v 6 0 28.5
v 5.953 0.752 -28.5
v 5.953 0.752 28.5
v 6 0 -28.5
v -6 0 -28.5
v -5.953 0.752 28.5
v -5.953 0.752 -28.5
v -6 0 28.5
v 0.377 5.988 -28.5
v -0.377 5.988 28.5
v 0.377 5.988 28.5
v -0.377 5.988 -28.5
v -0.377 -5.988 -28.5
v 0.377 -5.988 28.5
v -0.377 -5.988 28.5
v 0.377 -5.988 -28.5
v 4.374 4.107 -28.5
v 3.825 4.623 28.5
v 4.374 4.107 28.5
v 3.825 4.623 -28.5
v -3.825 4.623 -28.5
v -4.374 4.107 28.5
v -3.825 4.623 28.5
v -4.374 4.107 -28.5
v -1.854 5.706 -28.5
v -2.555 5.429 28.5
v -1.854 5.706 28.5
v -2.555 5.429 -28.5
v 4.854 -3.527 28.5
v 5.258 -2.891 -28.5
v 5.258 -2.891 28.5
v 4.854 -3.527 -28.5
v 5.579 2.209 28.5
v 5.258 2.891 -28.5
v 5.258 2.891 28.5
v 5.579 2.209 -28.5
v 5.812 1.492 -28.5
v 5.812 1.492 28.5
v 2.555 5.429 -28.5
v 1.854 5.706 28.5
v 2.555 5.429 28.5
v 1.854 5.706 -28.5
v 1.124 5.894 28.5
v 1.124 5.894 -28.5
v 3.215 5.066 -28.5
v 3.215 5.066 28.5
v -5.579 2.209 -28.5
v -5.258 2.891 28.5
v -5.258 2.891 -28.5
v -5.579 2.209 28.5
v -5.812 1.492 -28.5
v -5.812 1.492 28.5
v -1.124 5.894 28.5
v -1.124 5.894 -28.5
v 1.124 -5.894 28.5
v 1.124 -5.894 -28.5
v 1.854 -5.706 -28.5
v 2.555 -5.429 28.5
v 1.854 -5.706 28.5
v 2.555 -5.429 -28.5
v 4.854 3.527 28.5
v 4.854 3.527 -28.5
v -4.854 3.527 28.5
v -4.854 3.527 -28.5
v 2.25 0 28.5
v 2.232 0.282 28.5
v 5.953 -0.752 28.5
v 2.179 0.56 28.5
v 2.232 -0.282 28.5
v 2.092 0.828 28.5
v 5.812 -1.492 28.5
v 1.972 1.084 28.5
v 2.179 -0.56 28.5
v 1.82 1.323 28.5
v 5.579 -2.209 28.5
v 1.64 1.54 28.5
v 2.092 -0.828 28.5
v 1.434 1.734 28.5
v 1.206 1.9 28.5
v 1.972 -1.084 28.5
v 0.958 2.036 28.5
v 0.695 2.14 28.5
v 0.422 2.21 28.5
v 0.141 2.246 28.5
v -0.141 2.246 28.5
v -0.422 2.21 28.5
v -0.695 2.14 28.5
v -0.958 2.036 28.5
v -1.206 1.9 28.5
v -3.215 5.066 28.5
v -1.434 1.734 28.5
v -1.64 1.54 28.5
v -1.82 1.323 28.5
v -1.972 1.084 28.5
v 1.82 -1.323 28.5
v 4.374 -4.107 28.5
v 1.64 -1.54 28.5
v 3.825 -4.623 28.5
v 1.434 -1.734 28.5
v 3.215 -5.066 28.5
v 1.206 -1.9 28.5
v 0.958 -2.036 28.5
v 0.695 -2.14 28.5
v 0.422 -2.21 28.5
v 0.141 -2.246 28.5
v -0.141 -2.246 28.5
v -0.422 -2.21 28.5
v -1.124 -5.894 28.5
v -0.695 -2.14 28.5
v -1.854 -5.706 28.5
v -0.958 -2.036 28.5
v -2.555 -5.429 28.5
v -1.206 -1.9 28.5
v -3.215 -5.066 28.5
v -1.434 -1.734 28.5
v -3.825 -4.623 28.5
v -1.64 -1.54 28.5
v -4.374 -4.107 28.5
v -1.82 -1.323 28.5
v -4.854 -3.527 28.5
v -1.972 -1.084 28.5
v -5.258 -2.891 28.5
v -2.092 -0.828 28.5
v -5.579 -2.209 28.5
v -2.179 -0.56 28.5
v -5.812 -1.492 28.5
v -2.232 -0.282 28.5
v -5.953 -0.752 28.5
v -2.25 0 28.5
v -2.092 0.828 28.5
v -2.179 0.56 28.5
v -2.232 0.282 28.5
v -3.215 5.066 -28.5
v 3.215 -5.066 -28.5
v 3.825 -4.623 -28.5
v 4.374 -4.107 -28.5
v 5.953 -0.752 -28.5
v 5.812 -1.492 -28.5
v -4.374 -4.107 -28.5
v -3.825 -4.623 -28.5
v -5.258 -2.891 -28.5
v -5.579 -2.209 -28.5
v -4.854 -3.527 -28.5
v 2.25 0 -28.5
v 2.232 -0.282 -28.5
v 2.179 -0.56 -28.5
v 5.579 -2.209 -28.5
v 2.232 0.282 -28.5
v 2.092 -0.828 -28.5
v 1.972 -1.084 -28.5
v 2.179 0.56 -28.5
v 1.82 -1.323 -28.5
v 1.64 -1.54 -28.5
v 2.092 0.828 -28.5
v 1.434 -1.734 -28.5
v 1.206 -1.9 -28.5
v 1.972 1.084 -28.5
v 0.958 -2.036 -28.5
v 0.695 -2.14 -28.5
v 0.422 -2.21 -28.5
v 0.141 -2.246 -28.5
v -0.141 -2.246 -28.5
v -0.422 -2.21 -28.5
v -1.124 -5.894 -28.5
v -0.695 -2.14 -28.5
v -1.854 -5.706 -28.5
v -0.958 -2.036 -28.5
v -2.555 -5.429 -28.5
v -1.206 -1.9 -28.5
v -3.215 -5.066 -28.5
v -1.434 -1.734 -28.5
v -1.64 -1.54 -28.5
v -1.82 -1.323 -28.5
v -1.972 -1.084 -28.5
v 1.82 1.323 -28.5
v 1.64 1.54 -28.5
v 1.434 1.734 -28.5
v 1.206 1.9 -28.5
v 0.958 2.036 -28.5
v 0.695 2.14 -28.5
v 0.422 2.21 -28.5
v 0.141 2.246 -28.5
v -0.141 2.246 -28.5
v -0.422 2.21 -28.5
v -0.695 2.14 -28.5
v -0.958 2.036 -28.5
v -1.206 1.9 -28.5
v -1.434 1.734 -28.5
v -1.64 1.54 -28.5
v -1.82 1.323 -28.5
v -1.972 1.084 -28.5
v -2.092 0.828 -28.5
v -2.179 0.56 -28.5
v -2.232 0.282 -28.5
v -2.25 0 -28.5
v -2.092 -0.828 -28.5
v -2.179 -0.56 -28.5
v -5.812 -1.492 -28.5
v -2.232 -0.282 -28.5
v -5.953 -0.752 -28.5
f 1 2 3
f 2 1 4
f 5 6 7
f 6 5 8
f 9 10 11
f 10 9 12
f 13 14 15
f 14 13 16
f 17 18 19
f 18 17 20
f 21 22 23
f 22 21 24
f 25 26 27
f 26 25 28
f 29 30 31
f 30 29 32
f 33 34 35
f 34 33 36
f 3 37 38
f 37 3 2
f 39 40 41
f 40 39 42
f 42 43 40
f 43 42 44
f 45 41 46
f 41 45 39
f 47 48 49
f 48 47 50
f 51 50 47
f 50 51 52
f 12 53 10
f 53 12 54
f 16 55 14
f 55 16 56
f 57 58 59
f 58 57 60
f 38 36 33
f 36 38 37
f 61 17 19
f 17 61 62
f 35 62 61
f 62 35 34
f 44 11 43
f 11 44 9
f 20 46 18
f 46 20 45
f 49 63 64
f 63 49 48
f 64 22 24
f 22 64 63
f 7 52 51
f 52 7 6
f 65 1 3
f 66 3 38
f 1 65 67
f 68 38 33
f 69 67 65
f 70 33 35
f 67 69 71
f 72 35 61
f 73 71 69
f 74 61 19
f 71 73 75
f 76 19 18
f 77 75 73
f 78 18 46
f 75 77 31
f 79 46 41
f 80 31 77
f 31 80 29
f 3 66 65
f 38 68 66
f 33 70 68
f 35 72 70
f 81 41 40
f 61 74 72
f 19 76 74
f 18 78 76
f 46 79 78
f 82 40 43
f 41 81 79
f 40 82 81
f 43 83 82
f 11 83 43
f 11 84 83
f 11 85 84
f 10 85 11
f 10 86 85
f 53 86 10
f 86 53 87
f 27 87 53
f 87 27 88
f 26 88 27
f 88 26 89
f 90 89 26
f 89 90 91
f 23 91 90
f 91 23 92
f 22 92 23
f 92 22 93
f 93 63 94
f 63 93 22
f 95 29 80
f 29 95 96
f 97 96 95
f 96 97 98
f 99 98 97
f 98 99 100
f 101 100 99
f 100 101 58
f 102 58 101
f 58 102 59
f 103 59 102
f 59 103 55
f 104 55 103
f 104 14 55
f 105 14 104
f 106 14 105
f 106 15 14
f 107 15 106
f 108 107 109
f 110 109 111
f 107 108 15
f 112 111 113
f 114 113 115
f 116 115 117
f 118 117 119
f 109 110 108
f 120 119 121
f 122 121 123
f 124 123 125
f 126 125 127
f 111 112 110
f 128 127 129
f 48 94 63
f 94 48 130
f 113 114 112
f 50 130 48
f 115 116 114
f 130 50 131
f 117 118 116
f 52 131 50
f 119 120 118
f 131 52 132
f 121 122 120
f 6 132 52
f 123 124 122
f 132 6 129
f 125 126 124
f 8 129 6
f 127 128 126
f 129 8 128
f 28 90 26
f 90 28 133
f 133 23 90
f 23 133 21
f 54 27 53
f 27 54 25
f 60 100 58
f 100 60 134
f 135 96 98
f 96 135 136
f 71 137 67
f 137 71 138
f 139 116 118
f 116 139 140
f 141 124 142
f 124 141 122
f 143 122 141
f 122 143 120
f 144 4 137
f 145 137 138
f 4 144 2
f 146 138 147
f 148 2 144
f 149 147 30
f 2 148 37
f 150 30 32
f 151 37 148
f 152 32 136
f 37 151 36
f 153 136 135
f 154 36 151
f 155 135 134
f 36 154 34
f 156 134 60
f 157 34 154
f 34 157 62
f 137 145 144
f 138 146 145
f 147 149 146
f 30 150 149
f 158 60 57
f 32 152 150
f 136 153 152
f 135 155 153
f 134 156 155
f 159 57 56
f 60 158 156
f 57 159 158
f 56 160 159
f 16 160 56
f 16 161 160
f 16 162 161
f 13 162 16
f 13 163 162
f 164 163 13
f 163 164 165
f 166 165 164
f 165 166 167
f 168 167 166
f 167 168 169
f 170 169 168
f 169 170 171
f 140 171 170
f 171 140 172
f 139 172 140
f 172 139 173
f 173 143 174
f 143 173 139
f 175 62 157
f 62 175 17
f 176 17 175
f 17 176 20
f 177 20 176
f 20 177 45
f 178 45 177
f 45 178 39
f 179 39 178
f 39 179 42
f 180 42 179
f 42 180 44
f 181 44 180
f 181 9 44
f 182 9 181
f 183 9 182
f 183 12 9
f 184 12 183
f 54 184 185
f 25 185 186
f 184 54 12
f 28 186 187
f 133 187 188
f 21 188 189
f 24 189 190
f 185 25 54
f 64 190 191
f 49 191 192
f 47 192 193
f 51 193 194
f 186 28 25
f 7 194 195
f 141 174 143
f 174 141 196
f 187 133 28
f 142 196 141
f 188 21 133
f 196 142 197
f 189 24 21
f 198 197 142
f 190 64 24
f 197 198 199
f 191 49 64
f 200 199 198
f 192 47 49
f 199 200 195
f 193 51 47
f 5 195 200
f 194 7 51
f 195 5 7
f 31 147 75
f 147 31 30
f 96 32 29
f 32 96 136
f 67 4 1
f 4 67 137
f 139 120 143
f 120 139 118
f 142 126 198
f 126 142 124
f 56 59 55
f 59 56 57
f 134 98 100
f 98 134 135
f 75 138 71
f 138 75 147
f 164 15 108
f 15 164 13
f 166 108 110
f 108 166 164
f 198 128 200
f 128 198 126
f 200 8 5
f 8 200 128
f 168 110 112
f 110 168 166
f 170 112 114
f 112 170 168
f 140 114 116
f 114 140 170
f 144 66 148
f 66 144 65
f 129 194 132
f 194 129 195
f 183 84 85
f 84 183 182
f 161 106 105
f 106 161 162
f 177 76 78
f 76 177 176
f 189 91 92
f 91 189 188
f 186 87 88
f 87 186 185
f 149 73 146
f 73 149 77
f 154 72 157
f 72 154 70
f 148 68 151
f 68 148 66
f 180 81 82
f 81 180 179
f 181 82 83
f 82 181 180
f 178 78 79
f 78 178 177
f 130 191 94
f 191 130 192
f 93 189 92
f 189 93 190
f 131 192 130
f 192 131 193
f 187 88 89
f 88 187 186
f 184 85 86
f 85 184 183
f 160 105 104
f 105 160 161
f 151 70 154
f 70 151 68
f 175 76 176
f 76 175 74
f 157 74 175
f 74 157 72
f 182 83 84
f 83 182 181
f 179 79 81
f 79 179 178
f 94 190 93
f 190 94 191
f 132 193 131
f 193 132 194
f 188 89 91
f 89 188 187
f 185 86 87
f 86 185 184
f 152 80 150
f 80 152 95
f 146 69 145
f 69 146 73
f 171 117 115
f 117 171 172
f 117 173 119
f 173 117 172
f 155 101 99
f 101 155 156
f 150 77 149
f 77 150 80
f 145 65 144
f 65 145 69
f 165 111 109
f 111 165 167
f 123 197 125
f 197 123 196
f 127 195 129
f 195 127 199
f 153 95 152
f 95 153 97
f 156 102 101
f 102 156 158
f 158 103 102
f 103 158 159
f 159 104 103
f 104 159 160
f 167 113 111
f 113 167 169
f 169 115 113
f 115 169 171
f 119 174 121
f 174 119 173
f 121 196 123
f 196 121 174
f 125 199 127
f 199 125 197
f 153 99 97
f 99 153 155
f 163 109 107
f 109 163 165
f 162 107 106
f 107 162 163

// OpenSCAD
$fn = 50;


difference() {
	union() {
		translate(v = [0, 0, -28.5000000000]) {
			cylinder(h = 57, r = 6.0000000000);
		}
	}
	union() {
		translate(v = [0, 0, -100.0000000000]) {
			cylinder(h = 200, r = 2.2500000000);
		}
	}
}
